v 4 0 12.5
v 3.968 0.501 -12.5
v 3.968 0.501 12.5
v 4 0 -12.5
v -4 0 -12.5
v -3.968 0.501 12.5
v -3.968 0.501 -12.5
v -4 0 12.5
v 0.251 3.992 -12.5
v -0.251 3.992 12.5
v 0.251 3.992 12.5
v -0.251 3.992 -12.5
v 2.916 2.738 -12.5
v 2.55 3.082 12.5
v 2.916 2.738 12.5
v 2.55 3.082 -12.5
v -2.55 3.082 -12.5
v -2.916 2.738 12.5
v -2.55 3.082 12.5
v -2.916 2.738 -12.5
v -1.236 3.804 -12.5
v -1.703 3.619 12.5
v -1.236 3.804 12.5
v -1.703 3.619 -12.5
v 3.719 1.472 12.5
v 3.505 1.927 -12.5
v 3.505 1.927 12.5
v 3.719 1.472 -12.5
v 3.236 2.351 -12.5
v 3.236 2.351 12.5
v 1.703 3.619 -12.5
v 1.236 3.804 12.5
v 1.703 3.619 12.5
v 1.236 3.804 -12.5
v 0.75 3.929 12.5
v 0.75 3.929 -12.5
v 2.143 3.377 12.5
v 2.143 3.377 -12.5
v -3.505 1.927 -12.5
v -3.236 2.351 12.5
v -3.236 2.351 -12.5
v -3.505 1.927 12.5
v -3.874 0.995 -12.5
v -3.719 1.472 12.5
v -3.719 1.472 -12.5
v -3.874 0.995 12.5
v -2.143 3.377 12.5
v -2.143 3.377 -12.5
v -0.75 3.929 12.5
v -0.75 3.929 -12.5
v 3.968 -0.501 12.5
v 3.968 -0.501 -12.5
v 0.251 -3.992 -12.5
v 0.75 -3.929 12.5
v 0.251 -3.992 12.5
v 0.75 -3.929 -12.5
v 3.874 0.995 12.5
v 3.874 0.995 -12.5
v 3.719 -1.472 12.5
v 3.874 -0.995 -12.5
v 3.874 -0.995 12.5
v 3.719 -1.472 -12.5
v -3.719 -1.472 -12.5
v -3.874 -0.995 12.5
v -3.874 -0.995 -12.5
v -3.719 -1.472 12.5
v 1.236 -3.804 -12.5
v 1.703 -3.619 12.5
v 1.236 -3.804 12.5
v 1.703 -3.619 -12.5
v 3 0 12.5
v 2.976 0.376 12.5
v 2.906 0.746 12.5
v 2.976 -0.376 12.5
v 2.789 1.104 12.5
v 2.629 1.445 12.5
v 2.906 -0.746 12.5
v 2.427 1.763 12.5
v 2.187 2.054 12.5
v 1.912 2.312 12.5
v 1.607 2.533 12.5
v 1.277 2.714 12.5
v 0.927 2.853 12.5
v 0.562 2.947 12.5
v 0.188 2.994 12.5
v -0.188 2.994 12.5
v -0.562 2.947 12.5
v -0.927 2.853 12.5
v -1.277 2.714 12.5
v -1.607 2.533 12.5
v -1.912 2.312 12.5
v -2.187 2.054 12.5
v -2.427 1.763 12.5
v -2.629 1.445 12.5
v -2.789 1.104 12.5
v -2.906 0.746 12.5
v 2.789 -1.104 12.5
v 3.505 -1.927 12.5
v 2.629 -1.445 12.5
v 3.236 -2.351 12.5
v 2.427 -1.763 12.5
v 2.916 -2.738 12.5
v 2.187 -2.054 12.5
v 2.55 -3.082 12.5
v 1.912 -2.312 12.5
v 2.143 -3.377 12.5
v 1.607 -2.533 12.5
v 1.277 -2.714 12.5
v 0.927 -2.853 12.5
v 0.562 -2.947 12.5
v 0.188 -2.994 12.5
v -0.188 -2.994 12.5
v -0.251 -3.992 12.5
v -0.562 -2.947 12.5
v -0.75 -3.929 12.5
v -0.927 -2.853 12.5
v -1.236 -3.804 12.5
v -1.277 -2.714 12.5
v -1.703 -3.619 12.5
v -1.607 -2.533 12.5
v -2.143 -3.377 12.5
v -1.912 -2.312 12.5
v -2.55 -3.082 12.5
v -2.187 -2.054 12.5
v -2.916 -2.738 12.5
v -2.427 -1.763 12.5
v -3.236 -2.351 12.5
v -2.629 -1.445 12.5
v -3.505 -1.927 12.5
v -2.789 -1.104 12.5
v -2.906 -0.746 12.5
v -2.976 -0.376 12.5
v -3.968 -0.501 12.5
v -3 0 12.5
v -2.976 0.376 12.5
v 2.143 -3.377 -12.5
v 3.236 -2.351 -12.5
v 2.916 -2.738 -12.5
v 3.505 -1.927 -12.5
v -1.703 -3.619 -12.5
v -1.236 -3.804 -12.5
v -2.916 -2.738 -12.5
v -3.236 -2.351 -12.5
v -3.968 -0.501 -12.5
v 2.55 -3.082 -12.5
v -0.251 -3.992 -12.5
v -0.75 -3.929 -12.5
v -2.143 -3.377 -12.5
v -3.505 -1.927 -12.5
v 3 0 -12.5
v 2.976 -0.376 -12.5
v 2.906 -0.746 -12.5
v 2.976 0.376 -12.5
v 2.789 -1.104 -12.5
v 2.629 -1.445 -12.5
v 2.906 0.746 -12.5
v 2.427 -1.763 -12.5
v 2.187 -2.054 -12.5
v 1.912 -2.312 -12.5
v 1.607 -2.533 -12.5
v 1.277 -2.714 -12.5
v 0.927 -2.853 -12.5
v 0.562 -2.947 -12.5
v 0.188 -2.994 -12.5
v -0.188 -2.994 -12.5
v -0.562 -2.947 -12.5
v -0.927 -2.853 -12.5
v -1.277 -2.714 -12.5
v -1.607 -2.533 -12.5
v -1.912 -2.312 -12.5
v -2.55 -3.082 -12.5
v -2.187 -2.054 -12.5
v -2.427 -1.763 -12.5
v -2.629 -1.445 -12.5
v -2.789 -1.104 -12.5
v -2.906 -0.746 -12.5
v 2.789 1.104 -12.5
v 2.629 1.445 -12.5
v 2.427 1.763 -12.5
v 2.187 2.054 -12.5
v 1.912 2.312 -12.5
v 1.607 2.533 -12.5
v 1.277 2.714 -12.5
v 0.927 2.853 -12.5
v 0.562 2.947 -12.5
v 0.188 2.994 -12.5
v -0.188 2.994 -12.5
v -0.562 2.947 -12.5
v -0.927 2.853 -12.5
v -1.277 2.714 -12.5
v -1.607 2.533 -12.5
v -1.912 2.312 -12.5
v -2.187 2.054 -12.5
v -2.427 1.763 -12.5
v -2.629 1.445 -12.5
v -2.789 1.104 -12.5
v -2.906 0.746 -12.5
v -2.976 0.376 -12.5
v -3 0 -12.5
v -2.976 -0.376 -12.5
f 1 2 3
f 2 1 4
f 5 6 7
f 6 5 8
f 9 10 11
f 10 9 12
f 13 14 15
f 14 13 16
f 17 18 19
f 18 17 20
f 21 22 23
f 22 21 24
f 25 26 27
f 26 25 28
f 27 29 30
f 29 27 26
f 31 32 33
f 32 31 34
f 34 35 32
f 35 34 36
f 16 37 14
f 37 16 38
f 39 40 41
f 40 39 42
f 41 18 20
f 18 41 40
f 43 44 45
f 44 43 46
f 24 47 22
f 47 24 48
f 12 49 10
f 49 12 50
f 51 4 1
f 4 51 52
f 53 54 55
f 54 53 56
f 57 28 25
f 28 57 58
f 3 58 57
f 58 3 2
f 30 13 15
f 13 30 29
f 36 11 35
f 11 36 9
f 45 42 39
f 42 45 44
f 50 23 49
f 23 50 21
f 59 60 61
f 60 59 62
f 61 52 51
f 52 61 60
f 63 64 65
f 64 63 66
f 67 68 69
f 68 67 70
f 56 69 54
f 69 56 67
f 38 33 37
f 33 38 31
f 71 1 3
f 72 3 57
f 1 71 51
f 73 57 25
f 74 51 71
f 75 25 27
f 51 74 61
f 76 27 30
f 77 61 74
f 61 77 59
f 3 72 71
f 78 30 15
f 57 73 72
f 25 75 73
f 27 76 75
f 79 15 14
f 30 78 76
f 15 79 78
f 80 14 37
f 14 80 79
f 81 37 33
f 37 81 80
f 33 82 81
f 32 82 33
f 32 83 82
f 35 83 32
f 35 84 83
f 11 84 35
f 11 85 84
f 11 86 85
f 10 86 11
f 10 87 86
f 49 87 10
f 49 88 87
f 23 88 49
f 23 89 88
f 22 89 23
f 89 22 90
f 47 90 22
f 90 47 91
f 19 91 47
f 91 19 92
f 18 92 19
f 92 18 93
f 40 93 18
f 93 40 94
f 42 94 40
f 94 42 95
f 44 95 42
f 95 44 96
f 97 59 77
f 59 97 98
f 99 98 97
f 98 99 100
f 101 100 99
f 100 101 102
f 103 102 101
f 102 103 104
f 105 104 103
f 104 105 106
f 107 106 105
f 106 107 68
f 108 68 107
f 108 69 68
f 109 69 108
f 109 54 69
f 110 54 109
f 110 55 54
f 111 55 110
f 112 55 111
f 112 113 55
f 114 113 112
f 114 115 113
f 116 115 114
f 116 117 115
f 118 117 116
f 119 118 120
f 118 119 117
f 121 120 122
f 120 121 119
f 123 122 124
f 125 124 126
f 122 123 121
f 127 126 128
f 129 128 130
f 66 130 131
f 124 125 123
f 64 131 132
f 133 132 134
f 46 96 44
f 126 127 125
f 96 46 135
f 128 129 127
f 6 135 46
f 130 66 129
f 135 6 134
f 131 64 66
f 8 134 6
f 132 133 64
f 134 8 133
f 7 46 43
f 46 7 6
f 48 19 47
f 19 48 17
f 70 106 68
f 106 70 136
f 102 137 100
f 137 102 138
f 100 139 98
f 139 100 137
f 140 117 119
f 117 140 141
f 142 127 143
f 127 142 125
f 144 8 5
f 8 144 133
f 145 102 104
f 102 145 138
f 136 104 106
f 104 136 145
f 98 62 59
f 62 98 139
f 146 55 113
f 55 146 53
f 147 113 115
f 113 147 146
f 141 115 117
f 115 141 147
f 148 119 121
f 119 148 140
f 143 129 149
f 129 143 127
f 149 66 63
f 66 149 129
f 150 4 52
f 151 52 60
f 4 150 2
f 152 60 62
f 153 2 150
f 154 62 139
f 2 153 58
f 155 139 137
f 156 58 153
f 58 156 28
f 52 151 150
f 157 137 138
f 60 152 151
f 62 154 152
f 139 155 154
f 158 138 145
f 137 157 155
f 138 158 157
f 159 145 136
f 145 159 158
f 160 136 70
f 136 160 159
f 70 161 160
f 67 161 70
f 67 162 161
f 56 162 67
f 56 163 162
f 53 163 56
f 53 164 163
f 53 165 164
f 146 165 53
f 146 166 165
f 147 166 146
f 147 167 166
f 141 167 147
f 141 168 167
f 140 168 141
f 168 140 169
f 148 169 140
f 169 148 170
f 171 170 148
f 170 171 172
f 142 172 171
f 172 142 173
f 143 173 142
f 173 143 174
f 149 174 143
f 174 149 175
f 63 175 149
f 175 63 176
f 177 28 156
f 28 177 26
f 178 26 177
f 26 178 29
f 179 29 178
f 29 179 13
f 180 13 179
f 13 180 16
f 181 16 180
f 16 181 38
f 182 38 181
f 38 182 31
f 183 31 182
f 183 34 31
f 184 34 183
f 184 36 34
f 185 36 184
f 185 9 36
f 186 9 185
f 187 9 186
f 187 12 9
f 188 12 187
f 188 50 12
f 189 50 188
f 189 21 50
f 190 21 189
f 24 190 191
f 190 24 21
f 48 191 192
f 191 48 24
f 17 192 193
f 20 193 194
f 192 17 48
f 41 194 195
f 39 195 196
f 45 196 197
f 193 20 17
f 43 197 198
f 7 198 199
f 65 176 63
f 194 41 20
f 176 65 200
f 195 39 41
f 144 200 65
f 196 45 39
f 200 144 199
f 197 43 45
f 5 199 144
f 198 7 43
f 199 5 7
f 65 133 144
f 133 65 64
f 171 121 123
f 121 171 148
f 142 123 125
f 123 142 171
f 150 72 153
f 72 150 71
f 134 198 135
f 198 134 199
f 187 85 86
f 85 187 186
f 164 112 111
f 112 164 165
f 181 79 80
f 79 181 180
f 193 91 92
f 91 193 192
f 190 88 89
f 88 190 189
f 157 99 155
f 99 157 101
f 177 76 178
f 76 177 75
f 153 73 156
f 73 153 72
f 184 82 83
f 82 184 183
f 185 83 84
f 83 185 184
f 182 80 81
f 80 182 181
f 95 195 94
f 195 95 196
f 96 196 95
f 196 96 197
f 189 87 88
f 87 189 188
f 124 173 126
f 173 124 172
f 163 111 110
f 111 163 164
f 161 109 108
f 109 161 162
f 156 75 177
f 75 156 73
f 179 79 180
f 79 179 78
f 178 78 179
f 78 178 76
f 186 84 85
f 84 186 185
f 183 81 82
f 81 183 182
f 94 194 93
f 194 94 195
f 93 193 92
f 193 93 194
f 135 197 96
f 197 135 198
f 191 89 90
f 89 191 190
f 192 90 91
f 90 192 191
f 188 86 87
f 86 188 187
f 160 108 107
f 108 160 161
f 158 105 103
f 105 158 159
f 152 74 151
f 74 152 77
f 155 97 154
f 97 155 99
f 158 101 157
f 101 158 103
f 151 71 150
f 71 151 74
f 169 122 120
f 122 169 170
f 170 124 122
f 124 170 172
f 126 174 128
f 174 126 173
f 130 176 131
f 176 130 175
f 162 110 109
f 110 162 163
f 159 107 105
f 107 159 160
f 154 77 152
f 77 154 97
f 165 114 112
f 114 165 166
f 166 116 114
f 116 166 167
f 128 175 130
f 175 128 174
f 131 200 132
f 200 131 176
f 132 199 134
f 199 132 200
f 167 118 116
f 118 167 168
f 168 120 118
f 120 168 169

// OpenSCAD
$fn = 50;


difference() {
	union() {
		translate(v = [0, 0, -12.5000000000]) {
			cylinder(h = 25, r = 4.0000000000);
		}
	}
	union() {
		translate(v = [0, 0, -100.0000000000]) {
			cylinder(h = 200, r = 3.0000000000);
		}
	}
}
